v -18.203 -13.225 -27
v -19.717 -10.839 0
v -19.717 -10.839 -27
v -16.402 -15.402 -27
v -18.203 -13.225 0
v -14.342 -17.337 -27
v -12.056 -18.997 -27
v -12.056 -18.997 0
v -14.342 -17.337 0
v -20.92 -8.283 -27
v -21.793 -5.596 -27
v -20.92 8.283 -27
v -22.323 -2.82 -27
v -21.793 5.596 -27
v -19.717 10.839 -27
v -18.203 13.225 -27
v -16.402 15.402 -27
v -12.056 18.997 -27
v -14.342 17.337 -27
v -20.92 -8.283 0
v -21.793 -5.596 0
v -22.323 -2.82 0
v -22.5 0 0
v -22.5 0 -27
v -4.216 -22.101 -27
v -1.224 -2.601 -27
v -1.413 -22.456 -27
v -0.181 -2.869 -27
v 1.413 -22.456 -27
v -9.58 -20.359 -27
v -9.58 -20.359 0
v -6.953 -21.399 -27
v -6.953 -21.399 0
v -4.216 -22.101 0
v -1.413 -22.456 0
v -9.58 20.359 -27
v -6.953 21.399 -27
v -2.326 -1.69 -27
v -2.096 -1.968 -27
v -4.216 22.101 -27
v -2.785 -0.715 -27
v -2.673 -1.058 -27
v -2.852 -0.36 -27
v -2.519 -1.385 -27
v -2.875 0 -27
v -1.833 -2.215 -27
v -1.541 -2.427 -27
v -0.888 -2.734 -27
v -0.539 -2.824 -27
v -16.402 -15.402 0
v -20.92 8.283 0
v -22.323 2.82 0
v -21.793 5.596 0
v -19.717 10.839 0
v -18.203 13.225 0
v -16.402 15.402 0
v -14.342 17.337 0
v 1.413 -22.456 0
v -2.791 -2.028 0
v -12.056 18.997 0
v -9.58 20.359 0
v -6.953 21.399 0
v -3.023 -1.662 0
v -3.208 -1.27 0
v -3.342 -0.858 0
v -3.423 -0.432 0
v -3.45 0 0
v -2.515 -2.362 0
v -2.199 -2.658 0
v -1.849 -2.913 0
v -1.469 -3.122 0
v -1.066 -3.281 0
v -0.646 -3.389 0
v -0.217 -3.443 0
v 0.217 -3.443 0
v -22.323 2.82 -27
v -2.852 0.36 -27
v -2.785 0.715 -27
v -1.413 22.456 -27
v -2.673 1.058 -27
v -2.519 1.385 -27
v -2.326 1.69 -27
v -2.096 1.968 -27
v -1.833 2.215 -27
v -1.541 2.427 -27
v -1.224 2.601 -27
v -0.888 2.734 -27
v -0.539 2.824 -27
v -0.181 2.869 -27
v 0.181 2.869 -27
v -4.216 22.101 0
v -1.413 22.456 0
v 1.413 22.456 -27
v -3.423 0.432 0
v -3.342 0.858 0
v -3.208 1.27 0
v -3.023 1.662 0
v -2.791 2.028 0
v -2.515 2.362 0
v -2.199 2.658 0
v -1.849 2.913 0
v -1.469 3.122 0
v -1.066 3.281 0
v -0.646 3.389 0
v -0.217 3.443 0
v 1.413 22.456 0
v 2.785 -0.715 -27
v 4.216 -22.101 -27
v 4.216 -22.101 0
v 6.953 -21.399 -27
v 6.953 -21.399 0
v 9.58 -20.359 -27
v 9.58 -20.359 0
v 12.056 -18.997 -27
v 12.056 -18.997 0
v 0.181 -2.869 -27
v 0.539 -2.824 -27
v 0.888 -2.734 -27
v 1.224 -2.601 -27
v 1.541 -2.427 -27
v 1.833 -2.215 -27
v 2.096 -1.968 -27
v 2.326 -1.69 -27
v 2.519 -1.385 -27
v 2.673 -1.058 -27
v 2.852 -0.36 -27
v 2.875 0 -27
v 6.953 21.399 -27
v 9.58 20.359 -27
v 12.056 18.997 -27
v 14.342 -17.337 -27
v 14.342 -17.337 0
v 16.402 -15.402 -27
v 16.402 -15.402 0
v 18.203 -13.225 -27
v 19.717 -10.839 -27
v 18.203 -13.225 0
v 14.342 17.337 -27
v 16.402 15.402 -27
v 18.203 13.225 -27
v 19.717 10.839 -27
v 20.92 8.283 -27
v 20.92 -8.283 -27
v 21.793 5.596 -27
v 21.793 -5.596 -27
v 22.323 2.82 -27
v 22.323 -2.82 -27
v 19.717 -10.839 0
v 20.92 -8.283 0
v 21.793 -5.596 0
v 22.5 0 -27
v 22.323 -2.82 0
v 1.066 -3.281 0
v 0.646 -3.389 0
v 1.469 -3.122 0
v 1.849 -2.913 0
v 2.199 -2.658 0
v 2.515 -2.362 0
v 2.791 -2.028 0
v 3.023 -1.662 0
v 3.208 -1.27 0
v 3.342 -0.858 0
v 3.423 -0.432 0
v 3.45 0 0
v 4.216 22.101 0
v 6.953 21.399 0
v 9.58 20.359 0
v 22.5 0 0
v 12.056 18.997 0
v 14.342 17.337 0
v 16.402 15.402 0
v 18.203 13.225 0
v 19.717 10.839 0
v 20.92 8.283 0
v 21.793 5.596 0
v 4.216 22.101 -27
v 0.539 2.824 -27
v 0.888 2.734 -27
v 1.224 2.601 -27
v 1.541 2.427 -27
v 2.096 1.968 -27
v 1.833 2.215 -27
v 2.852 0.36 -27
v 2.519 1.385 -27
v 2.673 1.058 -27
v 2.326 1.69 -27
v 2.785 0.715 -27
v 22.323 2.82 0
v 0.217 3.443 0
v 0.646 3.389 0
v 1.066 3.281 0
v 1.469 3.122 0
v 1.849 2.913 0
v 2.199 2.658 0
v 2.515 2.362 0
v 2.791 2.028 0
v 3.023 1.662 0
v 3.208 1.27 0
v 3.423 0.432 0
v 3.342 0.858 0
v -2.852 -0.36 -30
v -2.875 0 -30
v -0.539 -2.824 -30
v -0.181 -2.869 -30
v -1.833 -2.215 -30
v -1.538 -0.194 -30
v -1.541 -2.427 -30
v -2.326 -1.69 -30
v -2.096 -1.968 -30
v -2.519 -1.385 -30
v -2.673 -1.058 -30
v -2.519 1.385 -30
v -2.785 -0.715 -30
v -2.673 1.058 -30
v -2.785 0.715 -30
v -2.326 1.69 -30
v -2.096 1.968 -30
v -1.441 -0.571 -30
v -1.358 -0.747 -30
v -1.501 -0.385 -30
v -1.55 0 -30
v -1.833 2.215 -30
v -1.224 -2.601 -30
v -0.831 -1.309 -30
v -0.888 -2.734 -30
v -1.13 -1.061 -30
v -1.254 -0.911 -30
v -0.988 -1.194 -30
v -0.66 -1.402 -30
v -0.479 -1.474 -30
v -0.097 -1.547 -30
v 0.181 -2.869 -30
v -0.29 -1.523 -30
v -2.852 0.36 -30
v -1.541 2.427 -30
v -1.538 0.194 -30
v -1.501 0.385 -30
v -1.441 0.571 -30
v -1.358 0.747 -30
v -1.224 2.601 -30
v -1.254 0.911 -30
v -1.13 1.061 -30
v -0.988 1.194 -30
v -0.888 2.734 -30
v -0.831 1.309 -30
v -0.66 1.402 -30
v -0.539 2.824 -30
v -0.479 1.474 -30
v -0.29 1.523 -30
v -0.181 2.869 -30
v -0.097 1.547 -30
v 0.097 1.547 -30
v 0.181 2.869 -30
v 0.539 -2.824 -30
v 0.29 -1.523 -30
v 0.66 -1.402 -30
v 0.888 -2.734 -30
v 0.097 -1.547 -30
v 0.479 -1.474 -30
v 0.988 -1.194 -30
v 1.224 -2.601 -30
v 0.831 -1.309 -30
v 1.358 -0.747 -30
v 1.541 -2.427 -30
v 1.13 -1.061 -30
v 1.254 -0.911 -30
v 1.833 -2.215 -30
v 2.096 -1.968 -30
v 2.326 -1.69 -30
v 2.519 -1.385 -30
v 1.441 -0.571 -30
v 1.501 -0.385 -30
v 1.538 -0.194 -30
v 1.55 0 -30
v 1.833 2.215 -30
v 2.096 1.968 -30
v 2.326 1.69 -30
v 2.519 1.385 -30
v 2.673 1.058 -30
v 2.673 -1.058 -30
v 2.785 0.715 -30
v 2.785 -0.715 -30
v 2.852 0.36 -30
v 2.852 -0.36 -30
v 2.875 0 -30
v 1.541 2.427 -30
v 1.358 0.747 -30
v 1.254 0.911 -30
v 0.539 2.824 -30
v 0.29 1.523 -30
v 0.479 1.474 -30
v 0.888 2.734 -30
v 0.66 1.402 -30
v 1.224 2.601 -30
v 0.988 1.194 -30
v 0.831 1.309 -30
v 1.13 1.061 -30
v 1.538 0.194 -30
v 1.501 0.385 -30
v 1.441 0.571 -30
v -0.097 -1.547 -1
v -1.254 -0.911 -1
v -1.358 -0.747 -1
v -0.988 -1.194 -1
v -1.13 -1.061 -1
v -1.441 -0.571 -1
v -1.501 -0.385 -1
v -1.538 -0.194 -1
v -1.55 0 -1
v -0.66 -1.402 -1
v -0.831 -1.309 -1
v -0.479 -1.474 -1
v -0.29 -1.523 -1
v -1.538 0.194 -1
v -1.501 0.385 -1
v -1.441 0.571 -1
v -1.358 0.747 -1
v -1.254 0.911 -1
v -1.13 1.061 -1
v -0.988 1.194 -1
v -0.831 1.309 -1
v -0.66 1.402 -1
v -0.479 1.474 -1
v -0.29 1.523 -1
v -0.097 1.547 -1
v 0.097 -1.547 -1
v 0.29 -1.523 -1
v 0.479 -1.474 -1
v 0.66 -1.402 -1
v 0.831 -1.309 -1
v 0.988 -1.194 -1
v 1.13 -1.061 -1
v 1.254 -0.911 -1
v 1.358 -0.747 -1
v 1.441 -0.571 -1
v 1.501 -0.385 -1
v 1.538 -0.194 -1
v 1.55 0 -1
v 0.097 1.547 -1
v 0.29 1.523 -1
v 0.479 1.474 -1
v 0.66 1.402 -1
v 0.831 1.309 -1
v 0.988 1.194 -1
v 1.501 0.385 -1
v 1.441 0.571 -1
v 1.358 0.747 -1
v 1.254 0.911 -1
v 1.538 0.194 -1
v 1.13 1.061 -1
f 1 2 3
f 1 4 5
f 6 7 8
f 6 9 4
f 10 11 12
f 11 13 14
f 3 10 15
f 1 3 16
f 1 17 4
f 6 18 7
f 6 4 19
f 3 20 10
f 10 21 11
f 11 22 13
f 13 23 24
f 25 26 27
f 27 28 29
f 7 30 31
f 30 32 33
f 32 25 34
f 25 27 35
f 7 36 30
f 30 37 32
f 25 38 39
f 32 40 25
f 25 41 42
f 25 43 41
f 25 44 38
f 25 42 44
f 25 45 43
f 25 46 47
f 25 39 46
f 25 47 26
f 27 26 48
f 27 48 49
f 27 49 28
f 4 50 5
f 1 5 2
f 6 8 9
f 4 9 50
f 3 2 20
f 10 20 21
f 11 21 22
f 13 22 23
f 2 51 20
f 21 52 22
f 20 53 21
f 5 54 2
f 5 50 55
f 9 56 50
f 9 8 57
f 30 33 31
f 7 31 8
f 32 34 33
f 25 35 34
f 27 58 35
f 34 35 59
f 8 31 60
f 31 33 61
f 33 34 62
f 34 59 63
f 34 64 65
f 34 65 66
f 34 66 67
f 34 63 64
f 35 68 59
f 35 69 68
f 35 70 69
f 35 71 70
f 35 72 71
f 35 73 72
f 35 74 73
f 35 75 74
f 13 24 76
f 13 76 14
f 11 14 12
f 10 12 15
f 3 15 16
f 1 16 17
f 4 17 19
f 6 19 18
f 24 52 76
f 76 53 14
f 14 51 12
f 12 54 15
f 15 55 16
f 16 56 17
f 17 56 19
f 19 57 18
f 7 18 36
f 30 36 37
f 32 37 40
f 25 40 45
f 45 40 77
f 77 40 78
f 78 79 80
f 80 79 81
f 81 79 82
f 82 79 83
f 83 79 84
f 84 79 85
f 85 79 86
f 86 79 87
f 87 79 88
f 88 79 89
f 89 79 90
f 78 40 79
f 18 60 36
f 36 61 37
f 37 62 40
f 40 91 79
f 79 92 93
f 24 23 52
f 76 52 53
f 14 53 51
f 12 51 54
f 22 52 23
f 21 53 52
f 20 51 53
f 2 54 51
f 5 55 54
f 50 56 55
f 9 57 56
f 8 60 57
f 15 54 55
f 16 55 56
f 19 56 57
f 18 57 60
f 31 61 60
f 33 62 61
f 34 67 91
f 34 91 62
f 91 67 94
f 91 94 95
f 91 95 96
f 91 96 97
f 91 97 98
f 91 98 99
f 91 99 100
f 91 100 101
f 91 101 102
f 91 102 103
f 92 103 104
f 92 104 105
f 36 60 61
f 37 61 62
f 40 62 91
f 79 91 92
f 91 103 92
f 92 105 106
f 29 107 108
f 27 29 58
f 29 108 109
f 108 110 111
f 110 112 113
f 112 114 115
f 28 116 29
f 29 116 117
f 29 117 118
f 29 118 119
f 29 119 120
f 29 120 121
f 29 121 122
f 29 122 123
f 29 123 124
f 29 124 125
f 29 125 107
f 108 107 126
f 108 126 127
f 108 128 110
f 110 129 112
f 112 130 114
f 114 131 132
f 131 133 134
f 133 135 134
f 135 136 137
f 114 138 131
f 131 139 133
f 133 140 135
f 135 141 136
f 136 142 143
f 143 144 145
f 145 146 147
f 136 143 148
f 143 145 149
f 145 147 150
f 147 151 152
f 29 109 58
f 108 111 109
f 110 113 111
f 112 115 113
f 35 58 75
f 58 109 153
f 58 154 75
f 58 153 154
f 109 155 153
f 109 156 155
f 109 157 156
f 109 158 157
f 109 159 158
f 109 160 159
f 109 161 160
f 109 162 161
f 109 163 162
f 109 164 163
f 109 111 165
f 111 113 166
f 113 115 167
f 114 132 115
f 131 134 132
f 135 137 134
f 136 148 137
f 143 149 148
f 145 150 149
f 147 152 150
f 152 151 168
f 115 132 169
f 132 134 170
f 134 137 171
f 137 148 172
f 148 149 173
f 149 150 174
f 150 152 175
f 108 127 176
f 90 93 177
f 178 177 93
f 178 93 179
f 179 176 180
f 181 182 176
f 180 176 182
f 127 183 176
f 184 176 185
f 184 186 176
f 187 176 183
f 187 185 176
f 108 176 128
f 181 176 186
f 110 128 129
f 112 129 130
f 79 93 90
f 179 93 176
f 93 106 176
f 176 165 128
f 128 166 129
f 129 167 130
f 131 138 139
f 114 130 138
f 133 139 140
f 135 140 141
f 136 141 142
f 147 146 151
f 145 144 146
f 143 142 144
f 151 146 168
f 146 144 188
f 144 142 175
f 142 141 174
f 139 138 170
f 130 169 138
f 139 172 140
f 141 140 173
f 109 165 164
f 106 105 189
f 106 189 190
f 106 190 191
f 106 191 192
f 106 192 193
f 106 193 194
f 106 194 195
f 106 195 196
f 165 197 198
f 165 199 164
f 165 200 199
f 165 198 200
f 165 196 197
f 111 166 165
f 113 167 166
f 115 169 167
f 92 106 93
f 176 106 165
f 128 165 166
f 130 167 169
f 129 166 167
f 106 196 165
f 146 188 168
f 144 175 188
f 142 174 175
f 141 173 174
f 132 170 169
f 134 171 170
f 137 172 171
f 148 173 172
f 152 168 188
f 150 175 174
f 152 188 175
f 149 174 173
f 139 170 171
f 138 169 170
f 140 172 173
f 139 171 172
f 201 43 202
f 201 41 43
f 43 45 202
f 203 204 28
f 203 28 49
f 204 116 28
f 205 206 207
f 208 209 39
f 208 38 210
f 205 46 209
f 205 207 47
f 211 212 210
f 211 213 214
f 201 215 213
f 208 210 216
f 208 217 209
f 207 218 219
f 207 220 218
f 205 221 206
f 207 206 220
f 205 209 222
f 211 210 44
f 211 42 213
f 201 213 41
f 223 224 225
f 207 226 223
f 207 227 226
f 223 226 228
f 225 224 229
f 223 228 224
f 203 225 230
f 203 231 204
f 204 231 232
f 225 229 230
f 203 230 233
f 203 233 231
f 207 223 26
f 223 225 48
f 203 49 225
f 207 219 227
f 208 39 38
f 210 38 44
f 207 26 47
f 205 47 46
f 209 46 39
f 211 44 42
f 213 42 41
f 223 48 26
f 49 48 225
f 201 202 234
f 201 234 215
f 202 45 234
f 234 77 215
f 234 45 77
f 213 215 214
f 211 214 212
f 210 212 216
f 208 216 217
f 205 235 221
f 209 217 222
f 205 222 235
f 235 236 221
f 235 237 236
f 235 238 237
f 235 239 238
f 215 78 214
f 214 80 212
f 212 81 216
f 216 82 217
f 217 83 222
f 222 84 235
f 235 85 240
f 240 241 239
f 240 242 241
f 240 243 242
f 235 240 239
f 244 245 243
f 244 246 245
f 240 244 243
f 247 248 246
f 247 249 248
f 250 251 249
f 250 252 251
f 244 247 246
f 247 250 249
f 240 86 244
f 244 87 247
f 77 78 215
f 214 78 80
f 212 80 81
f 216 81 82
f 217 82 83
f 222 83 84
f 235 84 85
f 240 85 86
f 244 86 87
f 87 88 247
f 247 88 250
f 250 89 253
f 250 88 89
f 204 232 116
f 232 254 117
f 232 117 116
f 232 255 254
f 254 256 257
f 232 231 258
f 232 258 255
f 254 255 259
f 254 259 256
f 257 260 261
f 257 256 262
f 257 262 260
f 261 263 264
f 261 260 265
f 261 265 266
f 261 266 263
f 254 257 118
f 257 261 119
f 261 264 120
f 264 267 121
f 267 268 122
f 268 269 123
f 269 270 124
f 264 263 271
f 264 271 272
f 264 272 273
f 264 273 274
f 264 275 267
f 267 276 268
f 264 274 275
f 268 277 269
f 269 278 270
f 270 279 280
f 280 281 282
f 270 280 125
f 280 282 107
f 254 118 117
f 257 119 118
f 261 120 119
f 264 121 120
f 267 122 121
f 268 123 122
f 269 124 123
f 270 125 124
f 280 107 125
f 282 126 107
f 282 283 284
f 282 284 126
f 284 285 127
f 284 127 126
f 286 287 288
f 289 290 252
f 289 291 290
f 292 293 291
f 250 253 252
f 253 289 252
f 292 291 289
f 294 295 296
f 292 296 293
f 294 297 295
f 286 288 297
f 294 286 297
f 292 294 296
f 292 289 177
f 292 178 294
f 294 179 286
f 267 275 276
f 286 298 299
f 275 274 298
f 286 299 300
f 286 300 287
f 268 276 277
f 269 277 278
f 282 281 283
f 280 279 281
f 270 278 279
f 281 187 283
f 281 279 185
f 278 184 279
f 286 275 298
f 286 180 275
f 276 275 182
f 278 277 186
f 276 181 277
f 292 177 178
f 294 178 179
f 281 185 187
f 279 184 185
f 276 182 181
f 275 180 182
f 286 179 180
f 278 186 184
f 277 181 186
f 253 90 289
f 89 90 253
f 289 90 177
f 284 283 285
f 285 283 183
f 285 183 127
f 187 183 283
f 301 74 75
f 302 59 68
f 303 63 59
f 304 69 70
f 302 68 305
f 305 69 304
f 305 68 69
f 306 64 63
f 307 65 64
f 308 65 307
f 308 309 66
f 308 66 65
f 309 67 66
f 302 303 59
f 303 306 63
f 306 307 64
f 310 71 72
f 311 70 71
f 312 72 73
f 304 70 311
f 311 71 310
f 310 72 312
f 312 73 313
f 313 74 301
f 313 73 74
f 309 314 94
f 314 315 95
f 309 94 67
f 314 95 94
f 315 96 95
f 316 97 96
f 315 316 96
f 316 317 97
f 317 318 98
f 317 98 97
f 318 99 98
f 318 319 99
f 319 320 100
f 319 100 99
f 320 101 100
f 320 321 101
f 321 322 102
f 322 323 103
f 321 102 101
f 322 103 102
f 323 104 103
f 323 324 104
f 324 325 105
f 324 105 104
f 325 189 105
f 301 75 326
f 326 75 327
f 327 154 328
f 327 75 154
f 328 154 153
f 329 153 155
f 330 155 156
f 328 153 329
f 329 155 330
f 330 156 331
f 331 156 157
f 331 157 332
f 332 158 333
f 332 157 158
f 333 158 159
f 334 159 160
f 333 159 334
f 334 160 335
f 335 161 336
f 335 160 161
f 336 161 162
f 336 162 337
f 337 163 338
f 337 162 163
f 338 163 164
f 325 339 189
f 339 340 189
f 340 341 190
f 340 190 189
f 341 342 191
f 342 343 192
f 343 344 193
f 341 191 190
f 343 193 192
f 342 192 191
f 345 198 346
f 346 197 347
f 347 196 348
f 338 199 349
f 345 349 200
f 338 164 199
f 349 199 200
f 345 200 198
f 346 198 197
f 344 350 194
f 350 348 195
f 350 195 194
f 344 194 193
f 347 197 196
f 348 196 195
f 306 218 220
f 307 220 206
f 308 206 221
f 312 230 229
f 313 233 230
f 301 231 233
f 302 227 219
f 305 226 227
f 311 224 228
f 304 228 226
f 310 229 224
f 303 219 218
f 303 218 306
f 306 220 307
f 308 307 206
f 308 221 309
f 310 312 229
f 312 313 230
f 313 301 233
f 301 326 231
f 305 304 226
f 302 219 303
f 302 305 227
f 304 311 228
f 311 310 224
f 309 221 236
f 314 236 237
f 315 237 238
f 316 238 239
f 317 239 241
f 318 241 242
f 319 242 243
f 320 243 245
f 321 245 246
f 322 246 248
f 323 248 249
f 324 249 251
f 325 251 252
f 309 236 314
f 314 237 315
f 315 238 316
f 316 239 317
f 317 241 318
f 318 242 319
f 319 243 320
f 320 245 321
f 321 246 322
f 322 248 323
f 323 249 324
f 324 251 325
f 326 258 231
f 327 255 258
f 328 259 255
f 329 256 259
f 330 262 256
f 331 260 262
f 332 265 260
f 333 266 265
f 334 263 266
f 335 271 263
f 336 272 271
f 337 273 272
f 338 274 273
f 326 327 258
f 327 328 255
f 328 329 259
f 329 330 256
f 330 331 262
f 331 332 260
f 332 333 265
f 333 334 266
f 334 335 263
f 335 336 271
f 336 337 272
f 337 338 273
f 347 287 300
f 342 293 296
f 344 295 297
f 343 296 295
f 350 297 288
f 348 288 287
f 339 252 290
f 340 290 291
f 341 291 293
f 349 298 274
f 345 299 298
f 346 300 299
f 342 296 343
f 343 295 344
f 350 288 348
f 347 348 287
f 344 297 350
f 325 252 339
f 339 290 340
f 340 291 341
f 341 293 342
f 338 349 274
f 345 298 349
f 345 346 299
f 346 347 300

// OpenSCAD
$fn = 50;


difference() {
	union() {
		translate(v = [0, 0, -27.0000000000]) {
			cylinder(h = 27, r = 22.5000000000);
		}
		#translate(v = [0, 0, -30.0000000000]) {
			cylinder(h = 30, r = 2.8750000000);
		}
	}
	union() {
		translate(v = [0, 0, 0]) {
			rotate(a = [0, 0, 0]) {
				difference() {
					union() {
						translate(v = [0, 0, -30.0000000000]) {
							cylinder(h = 30, r = 1.2500000000);
						}
						translate(v = [0, 0, -1.0000000000]) {
							cylinder(h = 1.0000000000, r1 = 1.5500000000, r2 = 3.4500000000);
						}
						translate(v = [0, 0, -30.0000000000]) {
							cylinder(h = 30, r = 1.5500000000);
						}
						translate(v = [0, 0, -30.0000000000]) {
							cylinder(h = 30, r = 1.2500000000);
						}
					}
					union();
				}
			}
		}
	}
}
